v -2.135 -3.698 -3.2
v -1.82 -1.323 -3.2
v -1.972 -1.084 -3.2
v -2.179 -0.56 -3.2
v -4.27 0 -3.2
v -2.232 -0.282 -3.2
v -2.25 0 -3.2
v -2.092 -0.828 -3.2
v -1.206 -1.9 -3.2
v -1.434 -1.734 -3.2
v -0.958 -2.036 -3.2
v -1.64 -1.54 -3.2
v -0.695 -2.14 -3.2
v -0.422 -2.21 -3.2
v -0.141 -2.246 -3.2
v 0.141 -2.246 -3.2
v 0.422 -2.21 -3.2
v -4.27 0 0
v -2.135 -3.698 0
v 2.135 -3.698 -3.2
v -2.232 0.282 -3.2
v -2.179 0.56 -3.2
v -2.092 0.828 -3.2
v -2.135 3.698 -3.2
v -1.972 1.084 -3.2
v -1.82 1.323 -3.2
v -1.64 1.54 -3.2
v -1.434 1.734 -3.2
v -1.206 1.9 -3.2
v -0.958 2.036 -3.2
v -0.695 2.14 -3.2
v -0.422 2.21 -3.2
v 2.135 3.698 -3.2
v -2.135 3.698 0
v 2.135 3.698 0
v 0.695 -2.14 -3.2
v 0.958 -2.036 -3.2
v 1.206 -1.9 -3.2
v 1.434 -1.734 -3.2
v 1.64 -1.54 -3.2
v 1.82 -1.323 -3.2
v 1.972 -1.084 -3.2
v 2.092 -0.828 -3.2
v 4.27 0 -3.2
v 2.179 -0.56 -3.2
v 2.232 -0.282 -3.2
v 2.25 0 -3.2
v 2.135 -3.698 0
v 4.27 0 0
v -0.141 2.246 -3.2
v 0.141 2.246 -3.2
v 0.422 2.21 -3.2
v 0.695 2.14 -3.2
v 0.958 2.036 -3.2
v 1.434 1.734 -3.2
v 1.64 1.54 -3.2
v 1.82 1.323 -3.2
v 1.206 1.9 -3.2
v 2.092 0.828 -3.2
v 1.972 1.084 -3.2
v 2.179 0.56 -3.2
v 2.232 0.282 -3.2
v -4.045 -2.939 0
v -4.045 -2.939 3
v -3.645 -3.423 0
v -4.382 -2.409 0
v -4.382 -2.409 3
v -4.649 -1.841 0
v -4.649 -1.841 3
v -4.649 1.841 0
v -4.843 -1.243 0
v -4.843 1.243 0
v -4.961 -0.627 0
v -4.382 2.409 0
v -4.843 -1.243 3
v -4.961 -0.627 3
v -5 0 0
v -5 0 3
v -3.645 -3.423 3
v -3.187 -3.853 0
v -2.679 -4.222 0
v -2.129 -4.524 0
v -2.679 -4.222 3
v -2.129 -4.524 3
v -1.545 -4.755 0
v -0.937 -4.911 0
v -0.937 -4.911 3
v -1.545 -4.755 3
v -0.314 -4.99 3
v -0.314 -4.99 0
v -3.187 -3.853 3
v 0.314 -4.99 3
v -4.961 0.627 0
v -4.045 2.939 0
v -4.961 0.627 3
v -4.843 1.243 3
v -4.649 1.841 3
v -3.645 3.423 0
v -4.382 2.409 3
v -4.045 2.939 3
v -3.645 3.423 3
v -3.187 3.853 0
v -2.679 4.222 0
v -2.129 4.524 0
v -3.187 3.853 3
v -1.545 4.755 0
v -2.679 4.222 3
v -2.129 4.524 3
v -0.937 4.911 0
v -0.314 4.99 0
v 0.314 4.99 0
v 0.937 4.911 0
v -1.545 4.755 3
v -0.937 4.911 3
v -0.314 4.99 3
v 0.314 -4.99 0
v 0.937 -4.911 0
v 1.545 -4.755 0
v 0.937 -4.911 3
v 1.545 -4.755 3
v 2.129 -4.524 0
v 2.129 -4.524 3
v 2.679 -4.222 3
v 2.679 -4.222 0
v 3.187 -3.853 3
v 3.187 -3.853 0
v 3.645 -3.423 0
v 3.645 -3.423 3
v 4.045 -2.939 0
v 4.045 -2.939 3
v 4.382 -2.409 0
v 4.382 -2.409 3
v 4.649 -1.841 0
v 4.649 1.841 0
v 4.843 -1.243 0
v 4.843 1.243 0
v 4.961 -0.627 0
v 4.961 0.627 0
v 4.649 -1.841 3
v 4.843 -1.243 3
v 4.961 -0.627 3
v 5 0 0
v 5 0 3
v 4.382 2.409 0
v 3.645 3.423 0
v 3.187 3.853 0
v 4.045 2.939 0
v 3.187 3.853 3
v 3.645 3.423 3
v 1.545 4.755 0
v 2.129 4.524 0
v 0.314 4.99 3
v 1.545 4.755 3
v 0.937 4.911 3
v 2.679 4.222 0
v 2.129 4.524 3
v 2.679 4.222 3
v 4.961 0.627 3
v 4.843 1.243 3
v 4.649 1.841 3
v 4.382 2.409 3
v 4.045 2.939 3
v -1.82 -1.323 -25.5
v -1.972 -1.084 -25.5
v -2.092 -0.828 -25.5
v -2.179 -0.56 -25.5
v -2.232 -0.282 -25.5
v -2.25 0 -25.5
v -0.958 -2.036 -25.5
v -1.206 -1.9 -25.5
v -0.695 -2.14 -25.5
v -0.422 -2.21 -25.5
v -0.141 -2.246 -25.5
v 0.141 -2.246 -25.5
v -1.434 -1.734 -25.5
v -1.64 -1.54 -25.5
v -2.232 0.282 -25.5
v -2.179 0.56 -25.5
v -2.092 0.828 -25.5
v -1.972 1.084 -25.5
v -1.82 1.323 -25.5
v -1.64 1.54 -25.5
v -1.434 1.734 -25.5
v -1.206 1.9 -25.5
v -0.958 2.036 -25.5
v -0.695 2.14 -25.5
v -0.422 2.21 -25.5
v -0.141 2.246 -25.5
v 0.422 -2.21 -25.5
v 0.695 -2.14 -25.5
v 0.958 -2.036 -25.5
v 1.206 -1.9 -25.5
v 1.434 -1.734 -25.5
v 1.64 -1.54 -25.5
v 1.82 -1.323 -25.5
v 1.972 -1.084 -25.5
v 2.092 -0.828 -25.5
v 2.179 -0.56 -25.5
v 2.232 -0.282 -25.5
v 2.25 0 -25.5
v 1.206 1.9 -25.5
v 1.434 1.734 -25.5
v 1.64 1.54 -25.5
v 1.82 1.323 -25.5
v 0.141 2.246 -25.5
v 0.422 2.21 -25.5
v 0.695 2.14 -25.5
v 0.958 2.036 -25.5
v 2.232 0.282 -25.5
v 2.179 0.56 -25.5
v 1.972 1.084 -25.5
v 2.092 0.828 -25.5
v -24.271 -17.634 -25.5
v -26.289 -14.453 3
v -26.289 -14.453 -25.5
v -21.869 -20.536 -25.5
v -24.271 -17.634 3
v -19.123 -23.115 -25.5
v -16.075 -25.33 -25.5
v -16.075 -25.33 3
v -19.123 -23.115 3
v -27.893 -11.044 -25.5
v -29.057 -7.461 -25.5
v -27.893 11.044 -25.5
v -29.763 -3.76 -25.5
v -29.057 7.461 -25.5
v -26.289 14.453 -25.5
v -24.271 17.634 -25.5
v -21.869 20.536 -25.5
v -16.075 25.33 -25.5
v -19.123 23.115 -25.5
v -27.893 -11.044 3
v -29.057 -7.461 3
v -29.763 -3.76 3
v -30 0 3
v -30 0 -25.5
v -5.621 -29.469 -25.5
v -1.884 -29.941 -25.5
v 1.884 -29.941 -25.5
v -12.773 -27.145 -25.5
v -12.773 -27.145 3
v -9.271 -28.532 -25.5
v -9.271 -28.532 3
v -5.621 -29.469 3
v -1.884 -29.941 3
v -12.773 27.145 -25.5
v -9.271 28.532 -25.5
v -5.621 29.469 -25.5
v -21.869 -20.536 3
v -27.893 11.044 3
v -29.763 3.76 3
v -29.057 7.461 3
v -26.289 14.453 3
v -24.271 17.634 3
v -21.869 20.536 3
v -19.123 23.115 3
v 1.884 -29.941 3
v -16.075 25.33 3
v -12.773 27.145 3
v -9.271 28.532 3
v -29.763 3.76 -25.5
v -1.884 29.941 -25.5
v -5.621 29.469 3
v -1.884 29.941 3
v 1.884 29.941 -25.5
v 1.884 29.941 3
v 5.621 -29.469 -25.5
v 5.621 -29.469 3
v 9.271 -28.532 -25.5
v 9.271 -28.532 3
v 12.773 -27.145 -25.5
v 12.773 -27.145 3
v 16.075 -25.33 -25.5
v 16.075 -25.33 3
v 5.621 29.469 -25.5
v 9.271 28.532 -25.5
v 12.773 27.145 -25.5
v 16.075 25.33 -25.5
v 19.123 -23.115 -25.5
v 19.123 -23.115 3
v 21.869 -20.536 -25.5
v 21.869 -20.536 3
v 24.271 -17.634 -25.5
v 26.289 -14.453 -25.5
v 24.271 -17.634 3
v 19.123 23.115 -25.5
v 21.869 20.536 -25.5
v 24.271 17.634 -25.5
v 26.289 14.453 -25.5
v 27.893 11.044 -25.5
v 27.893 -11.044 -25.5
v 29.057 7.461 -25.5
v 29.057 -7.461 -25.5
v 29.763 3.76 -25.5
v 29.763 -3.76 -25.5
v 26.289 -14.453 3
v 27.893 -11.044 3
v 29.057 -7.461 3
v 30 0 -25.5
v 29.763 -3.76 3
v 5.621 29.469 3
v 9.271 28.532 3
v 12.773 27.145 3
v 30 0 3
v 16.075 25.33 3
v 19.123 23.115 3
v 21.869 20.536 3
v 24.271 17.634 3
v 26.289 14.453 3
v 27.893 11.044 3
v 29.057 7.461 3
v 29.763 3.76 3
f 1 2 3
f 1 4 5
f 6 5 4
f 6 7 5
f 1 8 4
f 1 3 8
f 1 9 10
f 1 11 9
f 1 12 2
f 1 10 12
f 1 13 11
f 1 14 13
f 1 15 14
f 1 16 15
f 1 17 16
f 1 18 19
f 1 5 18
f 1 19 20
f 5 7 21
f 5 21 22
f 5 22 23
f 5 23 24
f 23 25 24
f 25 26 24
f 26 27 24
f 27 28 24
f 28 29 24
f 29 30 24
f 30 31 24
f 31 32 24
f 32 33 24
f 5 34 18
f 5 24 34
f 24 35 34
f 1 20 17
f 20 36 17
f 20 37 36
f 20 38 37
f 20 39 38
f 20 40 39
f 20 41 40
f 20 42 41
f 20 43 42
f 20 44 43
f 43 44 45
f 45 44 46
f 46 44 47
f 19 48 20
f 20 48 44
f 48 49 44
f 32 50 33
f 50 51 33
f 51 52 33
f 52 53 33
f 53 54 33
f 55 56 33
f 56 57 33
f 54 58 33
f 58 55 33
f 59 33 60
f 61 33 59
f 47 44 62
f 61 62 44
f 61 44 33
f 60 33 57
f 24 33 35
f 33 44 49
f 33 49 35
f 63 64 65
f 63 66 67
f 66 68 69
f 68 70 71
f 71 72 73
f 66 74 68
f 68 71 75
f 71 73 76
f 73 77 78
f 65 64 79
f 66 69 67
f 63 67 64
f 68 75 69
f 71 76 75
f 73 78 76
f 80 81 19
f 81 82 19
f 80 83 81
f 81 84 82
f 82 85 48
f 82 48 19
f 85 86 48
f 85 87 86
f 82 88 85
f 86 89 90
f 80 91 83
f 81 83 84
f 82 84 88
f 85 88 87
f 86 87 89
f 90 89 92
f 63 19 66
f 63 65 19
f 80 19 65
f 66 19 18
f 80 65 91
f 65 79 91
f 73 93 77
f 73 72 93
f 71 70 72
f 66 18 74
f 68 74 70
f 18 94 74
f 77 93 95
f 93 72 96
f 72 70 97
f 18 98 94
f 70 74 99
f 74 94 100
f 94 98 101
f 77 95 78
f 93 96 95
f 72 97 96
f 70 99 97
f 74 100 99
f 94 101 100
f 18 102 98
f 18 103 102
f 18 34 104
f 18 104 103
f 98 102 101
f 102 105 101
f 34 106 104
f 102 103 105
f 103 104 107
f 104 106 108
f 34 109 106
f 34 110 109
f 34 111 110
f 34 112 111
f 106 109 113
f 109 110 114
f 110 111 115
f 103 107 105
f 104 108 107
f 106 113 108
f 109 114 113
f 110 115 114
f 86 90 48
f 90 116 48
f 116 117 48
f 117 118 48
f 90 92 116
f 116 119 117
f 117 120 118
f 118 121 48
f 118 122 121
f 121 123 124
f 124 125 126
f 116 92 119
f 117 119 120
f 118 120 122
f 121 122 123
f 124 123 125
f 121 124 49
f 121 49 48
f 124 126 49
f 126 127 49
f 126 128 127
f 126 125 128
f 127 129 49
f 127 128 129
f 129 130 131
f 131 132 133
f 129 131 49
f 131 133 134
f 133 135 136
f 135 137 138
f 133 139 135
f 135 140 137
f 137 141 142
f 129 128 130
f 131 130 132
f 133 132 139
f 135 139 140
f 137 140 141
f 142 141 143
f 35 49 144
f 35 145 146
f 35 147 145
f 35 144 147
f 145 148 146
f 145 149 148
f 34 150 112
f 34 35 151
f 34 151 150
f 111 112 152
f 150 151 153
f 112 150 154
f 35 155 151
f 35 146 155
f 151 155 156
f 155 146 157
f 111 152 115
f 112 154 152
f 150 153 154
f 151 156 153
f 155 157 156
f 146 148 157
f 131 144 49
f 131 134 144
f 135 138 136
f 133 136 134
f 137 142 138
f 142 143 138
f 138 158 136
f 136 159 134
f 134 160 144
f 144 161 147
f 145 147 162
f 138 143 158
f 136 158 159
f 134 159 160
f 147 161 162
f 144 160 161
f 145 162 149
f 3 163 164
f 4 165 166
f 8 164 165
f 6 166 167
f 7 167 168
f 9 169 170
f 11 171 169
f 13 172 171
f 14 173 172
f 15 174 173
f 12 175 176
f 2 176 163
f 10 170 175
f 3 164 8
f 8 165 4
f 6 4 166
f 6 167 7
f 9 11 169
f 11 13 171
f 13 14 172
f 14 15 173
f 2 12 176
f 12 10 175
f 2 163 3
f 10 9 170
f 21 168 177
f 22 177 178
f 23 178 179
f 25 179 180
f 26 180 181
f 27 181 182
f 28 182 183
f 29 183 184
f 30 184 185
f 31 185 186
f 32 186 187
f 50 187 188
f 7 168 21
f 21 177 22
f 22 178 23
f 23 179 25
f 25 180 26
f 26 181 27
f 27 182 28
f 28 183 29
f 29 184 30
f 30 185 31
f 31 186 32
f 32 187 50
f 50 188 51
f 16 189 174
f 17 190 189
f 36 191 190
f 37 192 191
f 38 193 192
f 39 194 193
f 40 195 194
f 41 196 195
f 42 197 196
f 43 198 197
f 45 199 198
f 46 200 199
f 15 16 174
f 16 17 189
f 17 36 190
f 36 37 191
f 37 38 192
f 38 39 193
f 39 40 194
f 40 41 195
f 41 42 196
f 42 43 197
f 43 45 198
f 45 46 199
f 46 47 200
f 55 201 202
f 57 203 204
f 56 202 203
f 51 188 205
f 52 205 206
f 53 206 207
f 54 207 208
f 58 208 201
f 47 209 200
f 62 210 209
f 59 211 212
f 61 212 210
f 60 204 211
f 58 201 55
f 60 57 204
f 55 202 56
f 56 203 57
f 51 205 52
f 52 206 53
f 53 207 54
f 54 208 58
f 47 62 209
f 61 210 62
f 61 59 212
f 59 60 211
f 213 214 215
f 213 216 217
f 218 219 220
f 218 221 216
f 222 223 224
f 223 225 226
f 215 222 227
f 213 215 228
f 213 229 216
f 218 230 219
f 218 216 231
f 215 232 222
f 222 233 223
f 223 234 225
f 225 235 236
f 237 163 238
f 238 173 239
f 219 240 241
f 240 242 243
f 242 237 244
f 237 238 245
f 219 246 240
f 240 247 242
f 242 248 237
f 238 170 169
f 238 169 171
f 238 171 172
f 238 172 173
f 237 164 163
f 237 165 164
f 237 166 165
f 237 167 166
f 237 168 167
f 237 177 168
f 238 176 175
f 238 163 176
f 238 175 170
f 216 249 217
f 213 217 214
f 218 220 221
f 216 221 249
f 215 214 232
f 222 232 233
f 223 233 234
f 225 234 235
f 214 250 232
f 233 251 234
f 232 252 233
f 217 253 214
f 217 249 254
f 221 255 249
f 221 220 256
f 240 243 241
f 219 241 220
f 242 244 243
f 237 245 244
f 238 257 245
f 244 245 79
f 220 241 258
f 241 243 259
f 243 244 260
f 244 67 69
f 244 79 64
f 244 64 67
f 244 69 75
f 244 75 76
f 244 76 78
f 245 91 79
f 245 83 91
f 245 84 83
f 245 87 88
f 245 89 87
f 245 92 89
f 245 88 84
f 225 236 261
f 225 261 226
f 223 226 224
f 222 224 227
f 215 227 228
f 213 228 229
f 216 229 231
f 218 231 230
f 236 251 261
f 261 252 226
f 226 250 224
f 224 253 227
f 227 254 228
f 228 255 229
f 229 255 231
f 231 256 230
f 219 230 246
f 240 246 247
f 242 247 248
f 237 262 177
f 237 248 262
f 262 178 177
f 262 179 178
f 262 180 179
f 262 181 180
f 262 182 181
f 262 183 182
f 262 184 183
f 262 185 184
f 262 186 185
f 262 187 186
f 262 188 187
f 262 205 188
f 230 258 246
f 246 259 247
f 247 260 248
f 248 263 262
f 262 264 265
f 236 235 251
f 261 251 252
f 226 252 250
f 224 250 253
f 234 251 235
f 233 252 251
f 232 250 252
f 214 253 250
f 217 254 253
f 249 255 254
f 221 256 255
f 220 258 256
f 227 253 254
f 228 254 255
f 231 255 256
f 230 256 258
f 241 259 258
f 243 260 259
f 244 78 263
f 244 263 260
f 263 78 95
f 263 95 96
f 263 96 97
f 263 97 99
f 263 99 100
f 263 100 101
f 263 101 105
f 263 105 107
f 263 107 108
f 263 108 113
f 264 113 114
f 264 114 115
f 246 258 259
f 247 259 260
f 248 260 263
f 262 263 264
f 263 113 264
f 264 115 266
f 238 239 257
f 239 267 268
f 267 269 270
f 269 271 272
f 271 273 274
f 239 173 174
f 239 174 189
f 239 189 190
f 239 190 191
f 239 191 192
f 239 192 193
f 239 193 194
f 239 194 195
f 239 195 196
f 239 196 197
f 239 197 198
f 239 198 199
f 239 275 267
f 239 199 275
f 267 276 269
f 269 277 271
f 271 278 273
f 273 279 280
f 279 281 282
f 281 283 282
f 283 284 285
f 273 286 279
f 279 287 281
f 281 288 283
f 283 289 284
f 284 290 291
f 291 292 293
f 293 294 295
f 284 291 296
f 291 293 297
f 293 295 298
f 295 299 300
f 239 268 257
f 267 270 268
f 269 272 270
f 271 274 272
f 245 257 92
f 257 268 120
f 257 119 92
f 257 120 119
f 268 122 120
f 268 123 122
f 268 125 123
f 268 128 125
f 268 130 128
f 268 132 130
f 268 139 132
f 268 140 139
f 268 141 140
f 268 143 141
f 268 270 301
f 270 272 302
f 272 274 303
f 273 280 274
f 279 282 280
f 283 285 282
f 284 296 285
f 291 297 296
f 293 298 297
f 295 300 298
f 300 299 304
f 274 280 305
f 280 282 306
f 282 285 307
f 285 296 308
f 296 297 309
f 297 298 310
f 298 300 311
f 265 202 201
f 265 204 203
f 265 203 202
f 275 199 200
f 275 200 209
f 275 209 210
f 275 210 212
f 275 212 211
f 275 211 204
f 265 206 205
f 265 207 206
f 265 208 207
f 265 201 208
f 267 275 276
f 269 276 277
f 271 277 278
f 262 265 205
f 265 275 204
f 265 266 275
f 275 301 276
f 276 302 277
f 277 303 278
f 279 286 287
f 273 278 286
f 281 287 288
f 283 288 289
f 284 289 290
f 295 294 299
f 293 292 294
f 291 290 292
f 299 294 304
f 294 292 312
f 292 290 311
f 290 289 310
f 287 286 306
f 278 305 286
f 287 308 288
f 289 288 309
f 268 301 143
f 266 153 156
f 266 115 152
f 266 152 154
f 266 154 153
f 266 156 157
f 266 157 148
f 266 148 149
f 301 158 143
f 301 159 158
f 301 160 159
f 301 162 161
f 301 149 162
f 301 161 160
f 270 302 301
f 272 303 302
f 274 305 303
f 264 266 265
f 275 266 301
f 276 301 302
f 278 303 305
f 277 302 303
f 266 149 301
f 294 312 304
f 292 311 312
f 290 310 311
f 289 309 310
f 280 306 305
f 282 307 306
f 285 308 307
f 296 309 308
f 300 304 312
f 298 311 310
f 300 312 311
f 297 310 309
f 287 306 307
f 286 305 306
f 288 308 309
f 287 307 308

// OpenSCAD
$fn = 50;

difference() {
	union() {
		translate(v = [0, 0, -25.5]) {
			cylinder(h = 28.5, r = 30.0);
		}
	}
	union() {
		translate(v = [0, 0, 0]) {
			rotate(a = [0, 0, 0]) {
				difference() {
					union() {
						translate(v = [0, 0, -3.2]) {
							linear_extrude(height = 3.2) {
								polygon(points = [[4.2698, 0.0], [2.1349000000000005, 3.697755269078796], [-2.134899999999999, 3.6977552690787965], [-4.2698, 5.228996902999369e-16], [-2.134900000000002, -3.6977552690787956], [2.1348999999999974, -3.697755269078798]]);
							}
						}
					}
					union();
				}
			}
		}
		#cylinder(h = 3, r = 5.0);
		#translate(v = [0, 0, -100.0]) {
			cylinder(h = 200, r = 2.25);
		}
	}
}
